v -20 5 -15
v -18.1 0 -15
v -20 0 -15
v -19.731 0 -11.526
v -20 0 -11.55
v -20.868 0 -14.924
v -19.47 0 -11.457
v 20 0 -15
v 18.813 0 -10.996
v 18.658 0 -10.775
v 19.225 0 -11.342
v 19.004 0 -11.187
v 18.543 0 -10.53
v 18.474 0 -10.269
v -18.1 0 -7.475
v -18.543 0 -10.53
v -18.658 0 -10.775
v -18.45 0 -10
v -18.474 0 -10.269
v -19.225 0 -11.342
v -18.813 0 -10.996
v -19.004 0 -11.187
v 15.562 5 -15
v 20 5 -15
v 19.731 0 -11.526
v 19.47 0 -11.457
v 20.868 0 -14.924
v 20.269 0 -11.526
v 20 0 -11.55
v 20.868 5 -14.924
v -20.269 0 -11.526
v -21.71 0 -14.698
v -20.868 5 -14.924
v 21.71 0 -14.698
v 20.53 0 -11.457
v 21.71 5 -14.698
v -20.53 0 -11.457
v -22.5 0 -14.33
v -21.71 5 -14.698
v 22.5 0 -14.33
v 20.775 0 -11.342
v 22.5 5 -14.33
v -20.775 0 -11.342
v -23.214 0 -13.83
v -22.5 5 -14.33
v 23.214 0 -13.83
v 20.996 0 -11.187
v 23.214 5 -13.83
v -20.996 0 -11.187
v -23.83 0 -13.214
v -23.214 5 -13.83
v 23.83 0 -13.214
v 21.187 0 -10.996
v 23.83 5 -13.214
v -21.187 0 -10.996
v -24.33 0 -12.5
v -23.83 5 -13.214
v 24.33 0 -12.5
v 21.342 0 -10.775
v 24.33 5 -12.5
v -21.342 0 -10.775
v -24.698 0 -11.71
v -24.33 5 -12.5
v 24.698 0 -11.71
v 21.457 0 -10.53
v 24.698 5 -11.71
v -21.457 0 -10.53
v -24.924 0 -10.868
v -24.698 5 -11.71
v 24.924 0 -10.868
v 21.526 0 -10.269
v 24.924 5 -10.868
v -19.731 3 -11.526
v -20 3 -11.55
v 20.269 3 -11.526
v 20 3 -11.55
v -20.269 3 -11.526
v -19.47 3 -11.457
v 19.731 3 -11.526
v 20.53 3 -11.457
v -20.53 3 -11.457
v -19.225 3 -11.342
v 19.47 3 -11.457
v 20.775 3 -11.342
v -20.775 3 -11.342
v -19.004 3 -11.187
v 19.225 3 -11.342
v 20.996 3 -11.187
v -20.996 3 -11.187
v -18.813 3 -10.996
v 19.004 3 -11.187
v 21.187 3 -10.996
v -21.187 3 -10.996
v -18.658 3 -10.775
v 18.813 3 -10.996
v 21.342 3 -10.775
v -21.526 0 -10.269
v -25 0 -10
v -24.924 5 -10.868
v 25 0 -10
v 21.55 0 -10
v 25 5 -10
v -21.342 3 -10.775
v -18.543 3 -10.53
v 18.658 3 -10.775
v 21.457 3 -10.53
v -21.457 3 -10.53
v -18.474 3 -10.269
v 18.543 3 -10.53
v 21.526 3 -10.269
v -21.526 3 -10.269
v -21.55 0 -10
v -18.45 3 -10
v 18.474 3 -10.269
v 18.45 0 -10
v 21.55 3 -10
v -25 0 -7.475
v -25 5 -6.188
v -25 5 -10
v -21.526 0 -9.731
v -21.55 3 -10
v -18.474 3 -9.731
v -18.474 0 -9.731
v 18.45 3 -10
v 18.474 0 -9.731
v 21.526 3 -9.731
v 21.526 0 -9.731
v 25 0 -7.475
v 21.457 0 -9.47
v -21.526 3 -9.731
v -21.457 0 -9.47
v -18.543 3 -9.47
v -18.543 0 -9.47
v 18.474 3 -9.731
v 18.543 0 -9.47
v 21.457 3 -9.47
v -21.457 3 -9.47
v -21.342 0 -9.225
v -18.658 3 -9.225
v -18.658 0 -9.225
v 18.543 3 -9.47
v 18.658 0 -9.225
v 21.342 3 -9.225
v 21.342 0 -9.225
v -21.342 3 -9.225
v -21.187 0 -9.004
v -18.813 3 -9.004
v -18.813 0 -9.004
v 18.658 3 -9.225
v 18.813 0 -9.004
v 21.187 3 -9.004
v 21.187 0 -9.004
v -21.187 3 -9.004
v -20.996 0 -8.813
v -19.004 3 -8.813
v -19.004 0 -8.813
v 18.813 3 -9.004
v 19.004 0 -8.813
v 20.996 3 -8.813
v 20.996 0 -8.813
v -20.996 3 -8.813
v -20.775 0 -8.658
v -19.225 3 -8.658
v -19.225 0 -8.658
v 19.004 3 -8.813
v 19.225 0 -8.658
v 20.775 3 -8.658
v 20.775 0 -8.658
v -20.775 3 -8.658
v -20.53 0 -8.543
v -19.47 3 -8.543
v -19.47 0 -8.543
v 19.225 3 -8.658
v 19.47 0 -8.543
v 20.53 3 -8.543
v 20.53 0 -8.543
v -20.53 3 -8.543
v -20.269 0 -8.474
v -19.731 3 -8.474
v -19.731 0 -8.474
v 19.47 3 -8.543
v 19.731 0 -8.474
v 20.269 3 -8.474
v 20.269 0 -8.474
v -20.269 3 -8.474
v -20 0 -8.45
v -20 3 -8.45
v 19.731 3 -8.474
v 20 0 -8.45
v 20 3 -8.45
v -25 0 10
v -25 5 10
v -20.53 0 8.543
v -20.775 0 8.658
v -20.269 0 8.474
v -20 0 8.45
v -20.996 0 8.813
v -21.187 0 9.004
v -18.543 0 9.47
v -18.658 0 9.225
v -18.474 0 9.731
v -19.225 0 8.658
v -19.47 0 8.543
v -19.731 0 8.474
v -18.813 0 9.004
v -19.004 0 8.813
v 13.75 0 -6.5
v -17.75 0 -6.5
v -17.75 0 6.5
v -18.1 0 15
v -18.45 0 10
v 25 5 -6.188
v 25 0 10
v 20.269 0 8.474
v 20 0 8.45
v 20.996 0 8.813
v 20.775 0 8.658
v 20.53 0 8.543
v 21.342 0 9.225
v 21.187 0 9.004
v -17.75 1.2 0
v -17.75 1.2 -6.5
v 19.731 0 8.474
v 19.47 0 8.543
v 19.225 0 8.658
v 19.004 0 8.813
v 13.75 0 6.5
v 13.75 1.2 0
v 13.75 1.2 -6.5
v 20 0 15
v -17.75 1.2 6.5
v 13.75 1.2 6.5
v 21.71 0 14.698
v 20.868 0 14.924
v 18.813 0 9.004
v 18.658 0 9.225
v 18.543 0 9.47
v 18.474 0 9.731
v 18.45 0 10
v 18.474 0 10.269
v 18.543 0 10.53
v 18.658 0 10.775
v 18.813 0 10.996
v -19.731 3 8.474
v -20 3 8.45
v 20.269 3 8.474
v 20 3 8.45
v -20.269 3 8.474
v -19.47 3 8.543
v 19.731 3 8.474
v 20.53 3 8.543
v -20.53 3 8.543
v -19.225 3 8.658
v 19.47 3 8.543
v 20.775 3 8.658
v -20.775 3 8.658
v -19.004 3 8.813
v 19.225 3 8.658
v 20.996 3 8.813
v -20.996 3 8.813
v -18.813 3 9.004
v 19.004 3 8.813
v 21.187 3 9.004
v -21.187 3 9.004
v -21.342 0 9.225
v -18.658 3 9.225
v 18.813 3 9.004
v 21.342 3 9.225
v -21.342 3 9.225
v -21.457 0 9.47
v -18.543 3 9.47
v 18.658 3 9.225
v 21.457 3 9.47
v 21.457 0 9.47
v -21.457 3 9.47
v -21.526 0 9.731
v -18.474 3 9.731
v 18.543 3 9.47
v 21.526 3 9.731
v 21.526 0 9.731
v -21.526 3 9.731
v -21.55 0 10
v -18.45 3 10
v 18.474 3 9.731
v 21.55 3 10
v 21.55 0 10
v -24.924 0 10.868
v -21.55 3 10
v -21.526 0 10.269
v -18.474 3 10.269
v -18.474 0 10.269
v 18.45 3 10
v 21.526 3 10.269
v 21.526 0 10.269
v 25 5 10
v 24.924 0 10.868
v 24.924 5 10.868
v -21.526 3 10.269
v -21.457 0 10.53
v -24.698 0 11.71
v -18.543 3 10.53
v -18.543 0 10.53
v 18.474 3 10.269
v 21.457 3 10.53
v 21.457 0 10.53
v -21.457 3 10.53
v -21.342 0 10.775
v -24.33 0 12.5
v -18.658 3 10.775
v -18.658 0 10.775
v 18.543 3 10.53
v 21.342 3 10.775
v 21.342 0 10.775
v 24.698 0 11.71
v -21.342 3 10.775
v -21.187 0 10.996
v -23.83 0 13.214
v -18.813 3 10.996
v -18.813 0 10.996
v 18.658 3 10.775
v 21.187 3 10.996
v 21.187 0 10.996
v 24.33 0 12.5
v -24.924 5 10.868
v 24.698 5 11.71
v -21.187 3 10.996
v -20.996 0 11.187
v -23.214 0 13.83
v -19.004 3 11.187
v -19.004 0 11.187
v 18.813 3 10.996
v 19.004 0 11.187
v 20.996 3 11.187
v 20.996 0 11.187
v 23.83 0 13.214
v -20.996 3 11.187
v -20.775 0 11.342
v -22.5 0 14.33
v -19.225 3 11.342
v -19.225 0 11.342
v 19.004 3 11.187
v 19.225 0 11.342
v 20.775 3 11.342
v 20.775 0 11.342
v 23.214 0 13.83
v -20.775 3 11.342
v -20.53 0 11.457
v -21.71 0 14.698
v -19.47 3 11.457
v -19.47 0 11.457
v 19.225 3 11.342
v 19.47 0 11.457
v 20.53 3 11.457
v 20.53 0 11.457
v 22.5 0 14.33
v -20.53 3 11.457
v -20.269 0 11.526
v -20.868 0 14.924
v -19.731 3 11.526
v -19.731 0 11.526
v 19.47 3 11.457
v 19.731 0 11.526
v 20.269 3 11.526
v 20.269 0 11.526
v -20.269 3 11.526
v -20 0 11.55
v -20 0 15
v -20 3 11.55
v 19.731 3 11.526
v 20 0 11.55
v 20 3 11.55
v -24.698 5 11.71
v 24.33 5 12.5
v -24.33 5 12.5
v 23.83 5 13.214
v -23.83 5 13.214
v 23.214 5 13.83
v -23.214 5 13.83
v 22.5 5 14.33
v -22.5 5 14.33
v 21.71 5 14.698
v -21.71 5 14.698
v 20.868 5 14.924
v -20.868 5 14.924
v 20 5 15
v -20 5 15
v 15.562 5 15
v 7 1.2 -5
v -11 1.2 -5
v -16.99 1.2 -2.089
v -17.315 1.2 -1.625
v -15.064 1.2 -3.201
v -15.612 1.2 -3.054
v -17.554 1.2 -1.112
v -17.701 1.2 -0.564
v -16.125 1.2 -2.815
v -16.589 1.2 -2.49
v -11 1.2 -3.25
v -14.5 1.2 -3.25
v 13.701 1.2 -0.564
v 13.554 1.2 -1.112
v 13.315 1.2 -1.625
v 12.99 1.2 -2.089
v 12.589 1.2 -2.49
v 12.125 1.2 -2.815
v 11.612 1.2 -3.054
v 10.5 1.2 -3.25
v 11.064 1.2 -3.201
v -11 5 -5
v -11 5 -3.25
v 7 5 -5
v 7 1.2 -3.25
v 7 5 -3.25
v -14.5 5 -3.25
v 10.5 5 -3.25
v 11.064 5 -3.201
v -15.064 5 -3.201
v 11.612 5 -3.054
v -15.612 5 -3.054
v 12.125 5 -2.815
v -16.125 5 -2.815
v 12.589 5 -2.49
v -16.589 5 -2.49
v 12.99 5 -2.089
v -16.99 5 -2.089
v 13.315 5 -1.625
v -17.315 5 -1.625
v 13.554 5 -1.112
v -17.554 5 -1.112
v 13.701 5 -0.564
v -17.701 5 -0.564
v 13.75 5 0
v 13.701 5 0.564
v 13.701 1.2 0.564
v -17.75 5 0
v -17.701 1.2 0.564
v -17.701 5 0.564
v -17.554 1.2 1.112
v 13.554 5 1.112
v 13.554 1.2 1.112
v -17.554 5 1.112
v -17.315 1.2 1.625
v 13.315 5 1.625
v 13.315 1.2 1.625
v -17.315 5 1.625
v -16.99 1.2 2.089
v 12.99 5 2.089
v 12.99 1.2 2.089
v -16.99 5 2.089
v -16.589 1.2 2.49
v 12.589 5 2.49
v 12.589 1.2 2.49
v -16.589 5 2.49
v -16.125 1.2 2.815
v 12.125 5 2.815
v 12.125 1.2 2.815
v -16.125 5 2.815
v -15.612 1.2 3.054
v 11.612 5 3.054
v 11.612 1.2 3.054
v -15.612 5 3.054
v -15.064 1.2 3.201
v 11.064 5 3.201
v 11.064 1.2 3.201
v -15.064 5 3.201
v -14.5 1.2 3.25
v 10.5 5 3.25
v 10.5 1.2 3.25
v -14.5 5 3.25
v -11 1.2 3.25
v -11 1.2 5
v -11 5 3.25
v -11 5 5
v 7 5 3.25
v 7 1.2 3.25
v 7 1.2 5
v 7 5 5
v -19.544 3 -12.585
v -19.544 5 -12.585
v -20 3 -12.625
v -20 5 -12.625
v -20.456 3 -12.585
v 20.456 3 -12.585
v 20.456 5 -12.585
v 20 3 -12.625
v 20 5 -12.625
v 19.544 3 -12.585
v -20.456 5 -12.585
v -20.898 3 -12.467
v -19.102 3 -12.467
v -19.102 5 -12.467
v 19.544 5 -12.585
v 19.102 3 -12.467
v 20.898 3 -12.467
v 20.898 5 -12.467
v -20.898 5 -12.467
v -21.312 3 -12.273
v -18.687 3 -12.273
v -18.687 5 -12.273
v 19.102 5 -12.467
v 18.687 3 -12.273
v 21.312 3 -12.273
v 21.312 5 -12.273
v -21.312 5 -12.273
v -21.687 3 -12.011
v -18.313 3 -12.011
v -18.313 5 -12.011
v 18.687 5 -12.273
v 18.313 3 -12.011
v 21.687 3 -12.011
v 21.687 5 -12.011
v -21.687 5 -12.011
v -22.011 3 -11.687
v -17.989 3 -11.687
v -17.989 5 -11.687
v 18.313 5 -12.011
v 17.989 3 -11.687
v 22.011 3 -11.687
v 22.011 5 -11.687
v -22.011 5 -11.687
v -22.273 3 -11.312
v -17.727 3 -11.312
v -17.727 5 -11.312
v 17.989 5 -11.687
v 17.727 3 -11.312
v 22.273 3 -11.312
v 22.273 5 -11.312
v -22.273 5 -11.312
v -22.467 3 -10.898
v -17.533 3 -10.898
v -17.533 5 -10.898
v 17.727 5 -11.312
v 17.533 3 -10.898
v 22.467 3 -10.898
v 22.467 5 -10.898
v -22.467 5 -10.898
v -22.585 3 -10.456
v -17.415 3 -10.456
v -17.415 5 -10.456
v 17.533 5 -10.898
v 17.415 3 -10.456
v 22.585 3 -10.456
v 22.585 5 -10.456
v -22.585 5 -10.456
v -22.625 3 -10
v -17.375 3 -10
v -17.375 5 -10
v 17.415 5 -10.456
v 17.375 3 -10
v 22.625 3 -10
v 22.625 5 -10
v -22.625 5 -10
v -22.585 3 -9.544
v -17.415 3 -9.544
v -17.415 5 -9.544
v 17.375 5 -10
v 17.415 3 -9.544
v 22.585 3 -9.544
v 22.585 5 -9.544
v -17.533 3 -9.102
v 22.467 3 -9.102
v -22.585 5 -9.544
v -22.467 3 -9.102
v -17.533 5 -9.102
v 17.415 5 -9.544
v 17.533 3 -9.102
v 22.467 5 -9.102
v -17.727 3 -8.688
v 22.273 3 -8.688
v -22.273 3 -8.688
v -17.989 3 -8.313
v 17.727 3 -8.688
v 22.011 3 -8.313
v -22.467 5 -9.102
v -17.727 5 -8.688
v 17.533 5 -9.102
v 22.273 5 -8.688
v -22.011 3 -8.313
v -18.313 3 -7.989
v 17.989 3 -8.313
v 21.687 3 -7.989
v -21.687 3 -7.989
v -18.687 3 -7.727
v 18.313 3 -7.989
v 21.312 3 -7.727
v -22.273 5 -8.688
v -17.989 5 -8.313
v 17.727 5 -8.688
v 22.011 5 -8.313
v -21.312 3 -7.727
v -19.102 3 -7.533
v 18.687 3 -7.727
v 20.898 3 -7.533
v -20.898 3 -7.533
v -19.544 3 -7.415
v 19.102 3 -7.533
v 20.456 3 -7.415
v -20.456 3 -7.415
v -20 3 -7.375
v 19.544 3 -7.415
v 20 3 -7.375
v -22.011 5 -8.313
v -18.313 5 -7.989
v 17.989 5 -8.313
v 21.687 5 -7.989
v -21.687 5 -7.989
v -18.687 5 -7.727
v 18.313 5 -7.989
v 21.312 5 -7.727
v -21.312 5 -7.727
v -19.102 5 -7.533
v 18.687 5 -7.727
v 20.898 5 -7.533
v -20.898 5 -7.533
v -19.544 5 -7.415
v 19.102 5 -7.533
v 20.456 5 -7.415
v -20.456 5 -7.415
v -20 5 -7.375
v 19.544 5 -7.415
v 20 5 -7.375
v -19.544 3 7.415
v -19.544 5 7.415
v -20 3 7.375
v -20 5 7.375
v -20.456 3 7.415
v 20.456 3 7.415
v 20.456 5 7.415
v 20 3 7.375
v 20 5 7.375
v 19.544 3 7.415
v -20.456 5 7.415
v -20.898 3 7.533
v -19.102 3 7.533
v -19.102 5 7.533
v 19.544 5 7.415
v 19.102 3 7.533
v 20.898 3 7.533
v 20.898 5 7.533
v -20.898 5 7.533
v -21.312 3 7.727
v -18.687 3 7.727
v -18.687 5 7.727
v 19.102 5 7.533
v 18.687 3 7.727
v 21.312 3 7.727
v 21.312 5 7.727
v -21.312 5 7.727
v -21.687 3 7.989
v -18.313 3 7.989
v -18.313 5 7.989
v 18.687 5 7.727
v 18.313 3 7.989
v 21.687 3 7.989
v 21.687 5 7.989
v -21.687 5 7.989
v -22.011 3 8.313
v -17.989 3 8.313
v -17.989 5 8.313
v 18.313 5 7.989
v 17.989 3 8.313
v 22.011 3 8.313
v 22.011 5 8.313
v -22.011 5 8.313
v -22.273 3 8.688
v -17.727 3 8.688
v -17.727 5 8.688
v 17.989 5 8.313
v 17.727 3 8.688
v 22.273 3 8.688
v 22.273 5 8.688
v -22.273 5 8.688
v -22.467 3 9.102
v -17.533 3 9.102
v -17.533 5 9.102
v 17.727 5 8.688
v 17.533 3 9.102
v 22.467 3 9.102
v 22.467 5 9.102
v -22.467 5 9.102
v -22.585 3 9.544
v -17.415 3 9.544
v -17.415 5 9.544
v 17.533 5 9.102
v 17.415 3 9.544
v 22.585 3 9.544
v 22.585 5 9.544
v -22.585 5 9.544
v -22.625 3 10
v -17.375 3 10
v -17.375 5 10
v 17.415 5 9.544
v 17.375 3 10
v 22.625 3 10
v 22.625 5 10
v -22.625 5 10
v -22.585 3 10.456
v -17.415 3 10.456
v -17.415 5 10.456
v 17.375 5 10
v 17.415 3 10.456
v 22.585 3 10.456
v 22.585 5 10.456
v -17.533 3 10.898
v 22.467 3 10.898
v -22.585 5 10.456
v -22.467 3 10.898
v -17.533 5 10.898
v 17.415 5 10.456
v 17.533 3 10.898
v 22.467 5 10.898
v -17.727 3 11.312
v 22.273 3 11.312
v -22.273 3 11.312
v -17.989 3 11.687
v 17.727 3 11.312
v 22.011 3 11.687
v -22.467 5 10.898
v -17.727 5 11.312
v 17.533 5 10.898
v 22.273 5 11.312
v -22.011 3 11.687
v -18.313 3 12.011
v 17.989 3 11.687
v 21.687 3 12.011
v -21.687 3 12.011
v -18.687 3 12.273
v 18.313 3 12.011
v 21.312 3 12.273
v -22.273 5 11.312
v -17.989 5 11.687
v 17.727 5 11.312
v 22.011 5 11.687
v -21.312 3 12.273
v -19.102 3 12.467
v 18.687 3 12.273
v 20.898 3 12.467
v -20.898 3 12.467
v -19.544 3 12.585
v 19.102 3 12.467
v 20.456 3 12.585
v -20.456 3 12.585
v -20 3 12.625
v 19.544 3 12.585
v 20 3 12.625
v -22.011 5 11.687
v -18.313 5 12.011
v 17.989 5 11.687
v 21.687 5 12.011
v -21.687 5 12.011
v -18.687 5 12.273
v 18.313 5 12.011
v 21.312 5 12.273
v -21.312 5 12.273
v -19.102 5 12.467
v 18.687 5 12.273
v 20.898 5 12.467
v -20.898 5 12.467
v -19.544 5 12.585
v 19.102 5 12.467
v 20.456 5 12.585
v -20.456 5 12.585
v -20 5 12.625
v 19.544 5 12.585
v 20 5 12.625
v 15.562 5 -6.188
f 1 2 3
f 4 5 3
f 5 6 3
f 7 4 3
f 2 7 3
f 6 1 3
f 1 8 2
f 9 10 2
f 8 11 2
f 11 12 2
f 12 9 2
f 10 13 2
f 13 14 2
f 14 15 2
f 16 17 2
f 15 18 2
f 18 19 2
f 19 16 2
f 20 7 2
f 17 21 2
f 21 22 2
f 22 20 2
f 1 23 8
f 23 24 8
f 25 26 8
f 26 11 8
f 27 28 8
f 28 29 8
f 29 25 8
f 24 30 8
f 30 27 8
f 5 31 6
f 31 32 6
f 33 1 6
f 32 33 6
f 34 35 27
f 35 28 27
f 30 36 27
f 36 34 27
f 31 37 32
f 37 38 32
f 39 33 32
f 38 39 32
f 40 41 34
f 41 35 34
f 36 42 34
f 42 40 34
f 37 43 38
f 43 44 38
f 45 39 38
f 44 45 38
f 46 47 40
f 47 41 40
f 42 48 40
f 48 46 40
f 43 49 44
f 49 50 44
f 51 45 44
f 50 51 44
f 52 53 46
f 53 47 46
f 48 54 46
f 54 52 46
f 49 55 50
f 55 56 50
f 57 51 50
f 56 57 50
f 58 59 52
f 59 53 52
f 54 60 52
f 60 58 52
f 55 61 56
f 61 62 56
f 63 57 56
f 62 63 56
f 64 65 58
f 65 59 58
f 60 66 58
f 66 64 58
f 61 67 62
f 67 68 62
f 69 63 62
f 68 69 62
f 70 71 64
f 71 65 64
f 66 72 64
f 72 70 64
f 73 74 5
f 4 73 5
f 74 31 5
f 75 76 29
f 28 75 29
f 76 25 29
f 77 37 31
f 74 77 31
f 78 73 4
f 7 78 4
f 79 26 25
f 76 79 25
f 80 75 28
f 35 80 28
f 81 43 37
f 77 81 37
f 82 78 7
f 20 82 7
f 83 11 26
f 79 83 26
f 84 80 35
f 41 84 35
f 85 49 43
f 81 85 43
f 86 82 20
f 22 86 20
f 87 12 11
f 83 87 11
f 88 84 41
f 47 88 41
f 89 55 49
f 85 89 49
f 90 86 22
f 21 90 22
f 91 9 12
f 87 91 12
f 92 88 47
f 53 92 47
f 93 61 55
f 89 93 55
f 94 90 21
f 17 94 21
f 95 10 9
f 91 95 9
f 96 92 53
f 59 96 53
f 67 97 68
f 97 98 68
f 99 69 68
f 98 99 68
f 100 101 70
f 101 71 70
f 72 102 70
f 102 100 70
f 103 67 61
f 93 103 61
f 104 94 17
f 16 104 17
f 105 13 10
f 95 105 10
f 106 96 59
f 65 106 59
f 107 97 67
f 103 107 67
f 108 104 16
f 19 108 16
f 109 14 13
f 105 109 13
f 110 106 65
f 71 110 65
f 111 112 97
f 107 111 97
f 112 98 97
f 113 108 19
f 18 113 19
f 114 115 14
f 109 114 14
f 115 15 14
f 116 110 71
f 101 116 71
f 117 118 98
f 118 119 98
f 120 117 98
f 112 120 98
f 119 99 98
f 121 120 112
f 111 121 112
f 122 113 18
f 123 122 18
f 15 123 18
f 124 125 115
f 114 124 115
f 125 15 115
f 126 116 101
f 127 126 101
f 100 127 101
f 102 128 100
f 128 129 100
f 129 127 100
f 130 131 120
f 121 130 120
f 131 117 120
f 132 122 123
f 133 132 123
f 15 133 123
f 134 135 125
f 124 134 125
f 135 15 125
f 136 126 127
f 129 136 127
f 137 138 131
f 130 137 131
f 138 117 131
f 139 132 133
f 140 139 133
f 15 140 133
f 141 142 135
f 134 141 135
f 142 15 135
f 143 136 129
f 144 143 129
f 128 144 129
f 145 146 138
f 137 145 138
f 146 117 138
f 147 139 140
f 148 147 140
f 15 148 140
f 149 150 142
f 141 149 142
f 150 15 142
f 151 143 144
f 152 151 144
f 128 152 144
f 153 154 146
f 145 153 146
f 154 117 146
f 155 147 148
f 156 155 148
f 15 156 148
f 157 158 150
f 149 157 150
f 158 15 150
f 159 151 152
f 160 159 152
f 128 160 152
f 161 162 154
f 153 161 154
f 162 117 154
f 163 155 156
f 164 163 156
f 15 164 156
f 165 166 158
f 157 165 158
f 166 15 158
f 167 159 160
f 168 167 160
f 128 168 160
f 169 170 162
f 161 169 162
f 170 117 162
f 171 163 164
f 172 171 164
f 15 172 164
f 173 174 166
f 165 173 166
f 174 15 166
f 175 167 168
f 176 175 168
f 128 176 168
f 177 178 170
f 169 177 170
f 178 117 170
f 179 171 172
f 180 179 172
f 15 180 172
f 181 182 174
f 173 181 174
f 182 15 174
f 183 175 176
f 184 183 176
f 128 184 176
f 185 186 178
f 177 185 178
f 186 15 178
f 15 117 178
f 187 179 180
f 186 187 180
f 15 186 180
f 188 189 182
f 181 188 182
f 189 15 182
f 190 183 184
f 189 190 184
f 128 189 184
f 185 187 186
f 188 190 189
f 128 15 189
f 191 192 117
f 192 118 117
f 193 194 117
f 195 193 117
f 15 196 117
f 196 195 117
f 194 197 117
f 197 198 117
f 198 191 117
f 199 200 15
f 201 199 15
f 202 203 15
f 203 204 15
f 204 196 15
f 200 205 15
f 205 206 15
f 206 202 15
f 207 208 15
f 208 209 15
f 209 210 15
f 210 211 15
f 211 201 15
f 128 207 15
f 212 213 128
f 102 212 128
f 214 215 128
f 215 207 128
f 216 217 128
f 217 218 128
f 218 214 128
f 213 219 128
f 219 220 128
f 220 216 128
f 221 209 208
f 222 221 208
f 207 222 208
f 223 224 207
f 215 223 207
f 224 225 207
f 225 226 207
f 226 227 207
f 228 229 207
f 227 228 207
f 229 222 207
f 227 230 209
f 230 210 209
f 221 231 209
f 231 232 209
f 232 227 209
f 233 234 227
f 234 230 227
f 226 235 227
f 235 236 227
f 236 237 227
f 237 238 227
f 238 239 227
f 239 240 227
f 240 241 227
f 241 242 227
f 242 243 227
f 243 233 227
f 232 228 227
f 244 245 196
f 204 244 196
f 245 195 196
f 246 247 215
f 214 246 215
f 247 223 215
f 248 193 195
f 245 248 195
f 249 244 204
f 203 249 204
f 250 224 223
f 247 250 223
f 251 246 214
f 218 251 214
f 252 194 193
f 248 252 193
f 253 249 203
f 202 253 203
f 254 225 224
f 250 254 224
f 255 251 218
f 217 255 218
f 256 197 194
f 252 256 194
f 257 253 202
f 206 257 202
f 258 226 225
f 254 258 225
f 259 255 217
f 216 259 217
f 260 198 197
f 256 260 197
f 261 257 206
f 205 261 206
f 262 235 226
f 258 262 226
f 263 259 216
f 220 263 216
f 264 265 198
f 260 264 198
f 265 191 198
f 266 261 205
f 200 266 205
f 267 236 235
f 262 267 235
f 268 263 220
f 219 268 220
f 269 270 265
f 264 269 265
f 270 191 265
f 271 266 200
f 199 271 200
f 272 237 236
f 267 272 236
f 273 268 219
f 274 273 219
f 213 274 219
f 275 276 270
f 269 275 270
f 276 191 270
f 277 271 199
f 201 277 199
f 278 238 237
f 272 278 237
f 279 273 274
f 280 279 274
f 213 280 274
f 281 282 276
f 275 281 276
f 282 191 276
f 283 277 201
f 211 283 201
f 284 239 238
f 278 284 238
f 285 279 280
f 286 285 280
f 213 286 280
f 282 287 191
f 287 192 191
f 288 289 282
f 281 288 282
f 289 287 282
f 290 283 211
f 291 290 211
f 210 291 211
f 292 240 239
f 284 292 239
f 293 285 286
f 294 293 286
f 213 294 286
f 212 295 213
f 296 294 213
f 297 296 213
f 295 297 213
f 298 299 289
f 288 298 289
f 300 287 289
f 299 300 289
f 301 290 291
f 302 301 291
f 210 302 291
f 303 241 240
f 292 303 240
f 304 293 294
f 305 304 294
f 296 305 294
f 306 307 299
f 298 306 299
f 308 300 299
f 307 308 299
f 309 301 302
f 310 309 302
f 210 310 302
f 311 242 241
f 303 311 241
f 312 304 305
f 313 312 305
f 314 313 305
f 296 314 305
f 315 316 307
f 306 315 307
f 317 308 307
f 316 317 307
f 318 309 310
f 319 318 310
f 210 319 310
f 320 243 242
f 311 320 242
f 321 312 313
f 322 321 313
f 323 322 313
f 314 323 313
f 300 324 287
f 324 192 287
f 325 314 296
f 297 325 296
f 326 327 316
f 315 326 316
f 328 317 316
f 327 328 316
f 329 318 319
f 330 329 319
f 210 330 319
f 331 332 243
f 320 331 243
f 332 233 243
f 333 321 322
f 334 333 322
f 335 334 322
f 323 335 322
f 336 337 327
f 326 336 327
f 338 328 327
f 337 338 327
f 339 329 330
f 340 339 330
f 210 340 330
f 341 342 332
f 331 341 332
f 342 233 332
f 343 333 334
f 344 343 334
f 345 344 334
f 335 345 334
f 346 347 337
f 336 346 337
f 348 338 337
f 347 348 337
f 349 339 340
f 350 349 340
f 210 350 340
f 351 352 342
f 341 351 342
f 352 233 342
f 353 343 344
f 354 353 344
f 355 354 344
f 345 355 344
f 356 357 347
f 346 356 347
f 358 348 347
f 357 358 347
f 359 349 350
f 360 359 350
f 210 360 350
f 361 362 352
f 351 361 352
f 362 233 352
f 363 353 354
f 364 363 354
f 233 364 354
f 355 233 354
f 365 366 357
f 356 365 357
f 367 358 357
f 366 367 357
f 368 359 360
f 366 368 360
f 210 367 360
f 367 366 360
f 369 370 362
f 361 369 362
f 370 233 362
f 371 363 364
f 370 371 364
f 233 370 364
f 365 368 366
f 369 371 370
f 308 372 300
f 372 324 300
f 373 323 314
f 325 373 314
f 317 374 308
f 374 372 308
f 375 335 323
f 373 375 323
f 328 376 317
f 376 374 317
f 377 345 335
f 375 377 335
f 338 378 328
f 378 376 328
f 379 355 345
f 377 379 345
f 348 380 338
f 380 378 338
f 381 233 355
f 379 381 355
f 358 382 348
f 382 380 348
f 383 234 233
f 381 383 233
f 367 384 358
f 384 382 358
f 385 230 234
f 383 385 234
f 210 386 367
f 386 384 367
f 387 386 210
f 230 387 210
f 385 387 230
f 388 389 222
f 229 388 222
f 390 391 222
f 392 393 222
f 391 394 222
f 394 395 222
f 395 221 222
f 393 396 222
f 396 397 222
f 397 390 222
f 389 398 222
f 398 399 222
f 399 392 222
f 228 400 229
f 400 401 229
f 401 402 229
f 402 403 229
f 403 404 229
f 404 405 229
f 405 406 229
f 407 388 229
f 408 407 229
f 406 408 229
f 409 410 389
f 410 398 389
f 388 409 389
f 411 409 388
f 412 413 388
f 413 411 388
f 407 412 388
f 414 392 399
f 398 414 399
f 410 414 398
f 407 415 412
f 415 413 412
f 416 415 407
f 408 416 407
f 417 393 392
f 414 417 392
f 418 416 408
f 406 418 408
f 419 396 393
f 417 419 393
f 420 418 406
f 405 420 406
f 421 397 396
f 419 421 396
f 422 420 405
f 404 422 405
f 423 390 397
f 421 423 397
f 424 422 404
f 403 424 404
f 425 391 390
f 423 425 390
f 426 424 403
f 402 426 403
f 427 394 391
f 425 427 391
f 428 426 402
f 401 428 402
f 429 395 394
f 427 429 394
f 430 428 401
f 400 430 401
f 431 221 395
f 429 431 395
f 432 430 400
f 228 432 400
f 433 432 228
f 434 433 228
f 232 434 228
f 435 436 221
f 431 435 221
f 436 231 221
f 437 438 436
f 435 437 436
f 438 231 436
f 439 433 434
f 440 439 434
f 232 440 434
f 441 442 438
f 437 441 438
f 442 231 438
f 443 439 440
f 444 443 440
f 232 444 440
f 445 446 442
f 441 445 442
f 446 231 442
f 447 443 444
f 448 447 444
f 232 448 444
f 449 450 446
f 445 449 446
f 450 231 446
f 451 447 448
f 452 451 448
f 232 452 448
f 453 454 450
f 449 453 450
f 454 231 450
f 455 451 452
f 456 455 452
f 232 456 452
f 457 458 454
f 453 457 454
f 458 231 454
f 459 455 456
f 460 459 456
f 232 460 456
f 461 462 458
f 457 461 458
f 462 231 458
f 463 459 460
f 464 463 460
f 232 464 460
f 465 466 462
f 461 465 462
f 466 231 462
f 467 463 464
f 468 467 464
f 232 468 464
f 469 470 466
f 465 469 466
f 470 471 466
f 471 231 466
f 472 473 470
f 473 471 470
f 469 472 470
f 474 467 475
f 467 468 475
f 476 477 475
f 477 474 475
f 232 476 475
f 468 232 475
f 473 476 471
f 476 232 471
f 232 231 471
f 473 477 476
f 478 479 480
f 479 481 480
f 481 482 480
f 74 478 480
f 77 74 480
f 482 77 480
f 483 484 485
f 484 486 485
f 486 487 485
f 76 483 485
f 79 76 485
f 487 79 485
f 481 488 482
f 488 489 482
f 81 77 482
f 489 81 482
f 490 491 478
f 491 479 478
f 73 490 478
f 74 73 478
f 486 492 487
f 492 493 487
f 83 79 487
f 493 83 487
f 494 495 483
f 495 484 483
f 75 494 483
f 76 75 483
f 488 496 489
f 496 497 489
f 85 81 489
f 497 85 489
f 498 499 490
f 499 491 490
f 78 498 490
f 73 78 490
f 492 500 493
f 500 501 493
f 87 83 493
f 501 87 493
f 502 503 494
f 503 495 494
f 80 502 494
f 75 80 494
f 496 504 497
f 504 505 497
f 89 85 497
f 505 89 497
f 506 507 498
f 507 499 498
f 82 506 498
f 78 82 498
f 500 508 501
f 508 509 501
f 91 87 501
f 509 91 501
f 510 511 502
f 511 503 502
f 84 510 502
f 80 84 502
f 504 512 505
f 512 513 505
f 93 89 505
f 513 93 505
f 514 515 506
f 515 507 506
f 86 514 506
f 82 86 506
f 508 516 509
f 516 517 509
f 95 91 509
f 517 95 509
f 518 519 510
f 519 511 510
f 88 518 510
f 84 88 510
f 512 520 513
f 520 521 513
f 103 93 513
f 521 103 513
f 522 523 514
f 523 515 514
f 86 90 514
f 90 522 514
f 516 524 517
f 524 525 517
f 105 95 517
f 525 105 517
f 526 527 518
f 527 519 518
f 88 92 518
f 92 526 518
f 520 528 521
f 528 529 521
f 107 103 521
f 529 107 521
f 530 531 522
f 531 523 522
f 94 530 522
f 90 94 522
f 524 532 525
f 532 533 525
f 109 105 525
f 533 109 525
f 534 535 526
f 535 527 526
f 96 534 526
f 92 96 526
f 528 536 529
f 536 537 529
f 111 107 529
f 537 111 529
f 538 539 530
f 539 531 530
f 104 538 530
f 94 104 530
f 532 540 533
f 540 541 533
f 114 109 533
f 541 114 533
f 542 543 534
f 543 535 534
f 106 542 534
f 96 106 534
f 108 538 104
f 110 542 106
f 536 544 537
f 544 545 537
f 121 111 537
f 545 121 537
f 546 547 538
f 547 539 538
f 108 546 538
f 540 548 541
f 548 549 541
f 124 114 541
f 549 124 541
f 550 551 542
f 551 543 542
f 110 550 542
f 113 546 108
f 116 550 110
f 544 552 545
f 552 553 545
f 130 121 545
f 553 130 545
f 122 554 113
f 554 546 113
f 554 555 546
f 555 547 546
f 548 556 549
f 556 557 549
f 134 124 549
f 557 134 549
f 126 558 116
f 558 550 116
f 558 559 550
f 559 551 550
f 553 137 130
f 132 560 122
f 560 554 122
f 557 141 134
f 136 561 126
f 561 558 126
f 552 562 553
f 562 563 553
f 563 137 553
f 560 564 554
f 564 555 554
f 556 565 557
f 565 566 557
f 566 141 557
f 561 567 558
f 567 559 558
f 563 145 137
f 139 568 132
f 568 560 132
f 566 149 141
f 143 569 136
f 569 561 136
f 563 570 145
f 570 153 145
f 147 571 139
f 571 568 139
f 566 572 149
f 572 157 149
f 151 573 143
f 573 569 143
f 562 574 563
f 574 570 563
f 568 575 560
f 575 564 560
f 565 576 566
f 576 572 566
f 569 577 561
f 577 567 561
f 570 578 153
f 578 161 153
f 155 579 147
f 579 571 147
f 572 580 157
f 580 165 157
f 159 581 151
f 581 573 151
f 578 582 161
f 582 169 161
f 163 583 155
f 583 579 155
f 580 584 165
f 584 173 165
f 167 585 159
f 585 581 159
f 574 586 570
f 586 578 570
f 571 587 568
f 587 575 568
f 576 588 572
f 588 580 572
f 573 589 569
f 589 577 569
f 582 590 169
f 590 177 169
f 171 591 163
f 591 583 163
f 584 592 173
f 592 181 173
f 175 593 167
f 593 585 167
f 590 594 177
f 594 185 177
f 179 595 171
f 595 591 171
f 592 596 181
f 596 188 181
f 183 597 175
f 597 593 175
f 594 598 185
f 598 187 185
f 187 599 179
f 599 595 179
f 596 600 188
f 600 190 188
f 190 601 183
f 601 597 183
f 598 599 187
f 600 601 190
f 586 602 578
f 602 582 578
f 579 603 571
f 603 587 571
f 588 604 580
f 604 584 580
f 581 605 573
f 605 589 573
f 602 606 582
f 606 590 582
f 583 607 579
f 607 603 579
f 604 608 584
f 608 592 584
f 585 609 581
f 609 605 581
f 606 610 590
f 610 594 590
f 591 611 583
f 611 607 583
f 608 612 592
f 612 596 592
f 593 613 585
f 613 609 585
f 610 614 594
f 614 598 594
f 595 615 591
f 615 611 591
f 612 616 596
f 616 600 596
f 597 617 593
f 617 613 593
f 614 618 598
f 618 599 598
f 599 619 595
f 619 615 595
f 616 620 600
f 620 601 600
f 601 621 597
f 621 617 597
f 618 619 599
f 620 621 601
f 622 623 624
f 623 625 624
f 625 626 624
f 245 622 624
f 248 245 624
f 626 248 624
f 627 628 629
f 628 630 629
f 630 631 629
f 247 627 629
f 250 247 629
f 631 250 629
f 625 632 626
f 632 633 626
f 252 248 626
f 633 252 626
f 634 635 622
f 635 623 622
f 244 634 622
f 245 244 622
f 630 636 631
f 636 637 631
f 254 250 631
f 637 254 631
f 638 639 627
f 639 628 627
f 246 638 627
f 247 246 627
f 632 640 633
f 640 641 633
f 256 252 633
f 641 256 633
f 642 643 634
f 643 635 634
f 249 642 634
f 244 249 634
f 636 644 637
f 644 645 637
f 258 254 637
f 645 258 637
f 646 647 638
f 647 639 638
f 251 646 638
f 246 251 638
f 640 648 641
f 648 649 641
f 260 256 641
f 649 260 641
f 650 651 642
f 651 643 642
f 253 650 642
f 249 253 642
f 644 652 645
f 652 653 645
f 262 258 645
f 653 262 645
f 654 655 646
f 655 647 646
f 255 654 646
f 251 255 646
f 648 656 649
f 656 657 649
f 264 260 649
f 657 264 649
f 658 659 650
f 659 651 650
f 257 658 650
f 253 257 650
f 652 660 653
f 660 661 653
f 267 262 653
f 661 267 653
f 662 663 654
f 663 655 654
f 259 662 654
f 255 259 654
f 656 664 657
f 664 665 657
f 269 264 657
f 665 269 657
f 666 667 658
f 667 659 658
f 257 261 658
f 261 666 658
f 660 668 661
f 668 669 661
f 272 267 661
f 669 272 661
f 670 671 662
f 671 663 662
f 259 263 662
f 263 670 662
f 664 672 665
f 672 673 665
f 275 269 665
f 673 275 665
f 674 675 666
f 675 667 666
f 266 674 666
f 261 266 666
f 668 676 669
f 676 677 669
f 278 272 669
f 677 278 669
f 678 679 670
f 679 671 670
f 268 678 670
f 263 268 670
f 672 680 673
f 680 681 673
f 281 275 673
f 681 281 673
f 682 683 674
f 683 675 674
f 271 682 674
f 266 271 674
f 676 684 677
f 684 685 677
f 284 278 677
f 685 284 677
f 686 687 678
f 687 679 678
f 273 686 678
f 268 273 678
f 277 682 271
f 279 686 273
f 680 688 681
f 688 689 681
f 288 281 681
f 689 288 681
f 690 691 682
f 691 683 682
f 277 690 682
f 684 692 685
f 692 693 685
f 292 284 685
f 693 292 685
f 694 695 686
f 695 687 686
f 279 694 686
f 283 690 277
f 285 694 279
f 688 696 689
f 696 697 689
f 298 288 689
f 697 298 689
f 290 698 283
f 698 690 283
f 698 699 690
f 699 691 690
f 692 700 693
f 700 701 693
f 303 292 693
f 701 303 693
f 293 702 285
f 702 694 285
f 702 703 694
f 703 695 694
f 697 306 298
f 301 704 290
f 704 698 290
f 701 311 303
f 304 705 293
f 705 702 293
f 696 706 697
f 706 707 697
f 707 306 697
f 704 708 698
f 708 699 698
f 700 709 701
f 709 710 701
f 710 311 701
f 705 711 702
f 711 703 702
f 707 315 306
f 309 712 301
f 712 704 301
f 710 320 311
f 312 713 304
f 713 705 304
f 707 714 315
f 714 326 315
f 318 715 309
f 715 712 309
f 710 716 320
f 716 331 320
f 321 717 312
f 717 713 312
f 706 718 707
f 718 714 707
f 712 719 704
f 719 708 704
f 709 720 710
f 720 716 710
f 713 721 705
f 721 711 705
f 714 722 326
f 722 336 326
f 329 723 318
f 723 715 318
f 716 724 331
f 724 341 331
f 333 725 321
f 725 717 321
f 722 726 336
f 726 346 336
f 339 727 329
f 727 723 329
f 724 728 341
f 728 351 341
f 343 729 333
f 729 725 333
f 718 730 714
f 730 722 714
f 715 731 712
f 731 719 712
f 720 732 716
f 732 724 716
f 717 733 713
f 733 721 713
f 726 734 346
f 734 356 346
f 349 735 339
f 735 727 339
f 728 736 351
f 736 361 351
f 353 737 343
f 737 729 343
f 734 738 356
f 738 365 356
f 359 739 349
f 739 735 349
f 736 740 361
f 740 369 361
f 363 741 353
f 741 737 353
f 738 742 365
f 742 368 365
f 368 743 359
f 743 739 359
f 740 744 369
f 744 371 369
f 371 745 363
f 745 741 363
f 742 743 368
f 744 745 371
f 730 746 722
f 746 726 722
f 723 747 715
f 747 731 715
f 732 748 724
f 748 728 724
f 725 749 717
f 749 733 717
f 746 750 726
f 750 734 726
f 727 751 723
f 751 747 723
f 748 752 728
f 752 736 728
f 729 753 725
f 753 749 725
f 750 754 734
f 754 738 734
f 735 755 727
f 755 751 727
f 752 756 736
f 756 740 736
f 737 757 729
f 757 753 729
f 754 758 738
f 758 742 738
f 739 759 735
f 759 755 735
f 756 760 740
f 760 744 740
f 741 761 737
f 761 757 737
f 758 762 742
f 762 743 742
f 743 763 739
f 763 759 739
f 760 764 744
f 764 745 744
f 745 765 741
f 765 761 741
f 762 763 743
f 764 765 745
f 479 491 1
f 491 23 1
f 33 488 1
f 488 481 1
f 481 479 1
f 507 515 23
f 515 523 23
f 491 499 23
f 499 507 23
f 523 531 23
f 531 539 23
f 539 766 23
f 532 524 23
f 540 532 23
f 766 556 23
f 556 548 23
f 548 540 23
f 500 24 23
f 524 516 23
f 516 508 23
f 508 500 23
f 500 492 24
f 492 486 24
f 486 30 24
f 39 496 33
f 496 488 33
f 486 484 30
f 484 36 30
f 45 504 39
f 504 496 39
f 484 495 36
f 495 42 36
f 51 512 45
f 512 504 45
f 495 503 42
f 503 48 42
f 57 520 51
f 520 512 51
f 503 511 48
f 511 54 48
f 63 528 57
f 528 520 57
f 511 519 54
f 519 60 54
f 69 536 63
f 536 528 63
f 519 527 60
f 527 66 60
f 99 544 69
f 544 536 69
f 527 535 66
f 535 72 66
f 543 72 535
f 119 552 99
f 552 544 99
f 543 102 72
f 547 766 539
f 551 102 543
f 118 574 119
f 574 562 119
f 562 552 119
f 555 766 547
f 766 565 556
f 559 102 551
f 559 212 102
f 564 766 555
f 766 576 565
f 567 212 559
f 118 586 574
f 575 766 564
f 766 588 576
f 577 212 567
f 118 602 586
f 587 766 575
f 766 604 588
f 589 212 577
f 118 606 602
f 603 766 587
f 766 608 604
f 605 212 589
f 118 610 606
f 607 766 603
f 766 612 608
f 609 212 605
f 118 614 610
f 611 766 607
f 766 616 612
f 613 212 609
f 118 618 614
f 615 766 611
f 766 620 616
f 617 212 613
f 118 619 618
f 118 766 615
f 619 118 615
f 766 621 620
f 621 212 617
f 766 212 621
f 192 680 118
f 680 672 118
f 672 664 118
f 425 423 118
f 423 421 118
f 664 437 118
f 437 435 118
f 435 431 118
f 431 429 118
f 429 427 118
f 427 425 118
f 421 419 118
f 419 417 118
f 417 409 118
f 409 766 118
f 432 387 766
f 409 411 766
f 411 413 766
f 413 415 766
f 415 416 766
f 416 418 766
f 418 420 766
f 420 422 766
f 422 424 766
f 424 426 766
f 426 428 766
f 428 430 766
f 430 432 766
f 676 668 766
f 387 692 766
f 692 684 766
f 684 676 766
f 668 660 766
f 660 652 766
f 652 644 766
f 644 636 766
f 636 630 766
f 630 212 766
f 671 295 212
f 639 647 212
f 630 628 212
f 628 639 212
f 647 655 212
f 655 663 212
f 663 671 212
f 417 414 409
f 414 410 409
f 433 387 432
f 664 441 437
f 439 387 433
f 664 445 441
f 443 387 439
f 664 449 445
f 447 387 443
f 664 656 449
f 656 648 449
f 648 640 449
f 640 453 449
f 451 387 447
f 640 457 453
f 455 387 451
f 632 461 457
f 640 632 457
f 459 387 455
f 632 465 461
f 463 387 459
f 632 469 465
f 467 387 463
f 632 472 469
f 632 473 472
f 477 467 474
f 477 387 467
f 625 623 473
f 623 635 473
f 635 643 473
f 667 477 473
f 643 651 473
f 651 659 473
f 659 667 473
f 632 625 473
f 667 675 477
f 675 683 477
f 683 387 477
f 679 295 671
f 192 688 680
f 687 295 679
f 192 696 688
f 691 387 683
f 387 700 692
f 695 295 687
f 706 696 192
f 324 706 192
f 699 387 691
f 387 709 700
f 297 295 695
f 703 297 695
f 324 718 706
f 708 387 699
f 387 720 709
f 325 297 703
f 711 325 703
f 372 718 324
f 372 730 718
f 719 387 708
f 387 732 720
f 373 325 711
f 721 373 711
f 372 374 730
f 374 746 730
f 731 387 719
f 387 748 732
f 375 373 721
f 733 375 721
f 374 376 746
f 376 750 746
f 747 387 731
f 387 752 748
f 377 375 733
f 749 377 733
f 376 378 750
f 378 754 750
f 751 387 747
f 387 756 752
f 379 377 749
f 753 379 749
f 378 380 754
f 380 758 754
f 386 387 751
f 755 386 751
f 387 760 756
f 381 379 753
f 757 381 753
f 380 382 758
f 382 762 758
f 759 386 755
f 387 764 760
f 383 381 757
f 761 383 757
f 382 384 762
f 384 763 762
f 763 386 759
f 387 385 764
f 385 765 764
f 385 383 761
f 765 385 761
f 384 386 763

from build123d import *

# Parameters (mm, degrees)
SKETCH1_W           = 50
SKETCH1_H           = 30
SKETCH1_R           = 1.55
BOSS_EXTRUDE1_DEPTH = 5
SKETCH2_R           = 2.625
CUT_EXTRUDE1_DEPTH  = 2
SKETCH3_W           = 31.5
SKETCH3_H           = 13
CUT_EXTRUDE2_DEPTH  = 1.2
FILLET1_R           = 5


with BuildPart() as part:
    # Sketch1 → Boss-Extrude1 (new body)
    with BuildSketch(Plane(origin=(0, 0, 0), x_dir=(1, 0, 0), z_dir=(0, 1, 0))):
        Rectangle(SKETCH1_W, SKETCH1_H)
        with Locations((-20, -10)):
            Circle(SKETCH1_R, mode=Mode.SUBTRACT)
        with Locations((20, -10)):
            Circle(SKETCH1_R, mode=Mode.SUBTRACT)
        with BuildLine():
            Line((7, -5), (-11, -5))
            Line((-11, -5), (-11, -3.25))
            Line((-11, -3.25), (-14.5, -3.25))
            ThreePointArc((-14.5, -3.25), (-17.75, 0), (-14.5, 3.25))
            Line((-14.5, 3.25), (-11, 3.25))
            Line((-11, 3.25), (-11, 5))
            Line((-11, 5), (7, 5))
            Line((7, 5), (7, 3.25))
            Line((7, 3.25), (10.5, 3.25))
            ThreePointArc((10.5, 3.25), (12.798097039, 2.298097039), (13.75, 0))
            ThreePointArc((13.75, 0), (12.798097039, -2.298097039), (10.5, -3.25))
            Line((10.5, -3.25), (7, -3.25))
            Line((7, -3.25), (7, -5))
        make_face(mode=Mode.SUBTRACT)
        with Locations((-20, 10)):
            Circle(SKETCH1_R, mode=Mode.SUBTRACT)
        with Locations((20, 10)):
            Circle(SKETCH1_R, mode=Mode.SUBTRACT)
    extrude(amount=BOSS_EXTRUDE1_DEPTH)

    # Sketch2 → Cut-Extrude1 (cut)
    with BuildSketch(Plane(origin=(0, 5, 0), x_dir=(1, 0, 0), z_dir=(0, 1, 0))):
        with Locations((-20, 10)):
            Circle(SKETCH2_R)
        with Locations((20, 10)):
            Circle(SKETCH2_R)
        with Locations((20, -10)):
            Circle(SKETCH2_R)
        with Locations((-20, -10)):
            Circle(SKETCH2_R)
    extrude(amount=-CUT_EXTRUDE1_DEPTH, mode=Mode.SUBTRACT)

    # Sketch3 → Cut-Extrude2 (cut)
    with BuildSketch(Plane.XZ):
        with Locations((-2, 0)):
            Rectangle(SKETCH3_W, SKETCH3_H)
    extrude(amount=-CUT_EXTRUDE2_DEPTH, mode=Mode.SUBTRACT)

    # Fillet1
    fillet1_edges = [part.edges().sort_by_distance(p)[0] for p in [
        (-25, 2.5, 15),
        (-25, 2.5, -15),
        (25, 2.5, -15),
        (25, 2.5, 15),
    ]]
    fillet(fillet1_edges, radius=FILLET1_R)


solid = part.part
